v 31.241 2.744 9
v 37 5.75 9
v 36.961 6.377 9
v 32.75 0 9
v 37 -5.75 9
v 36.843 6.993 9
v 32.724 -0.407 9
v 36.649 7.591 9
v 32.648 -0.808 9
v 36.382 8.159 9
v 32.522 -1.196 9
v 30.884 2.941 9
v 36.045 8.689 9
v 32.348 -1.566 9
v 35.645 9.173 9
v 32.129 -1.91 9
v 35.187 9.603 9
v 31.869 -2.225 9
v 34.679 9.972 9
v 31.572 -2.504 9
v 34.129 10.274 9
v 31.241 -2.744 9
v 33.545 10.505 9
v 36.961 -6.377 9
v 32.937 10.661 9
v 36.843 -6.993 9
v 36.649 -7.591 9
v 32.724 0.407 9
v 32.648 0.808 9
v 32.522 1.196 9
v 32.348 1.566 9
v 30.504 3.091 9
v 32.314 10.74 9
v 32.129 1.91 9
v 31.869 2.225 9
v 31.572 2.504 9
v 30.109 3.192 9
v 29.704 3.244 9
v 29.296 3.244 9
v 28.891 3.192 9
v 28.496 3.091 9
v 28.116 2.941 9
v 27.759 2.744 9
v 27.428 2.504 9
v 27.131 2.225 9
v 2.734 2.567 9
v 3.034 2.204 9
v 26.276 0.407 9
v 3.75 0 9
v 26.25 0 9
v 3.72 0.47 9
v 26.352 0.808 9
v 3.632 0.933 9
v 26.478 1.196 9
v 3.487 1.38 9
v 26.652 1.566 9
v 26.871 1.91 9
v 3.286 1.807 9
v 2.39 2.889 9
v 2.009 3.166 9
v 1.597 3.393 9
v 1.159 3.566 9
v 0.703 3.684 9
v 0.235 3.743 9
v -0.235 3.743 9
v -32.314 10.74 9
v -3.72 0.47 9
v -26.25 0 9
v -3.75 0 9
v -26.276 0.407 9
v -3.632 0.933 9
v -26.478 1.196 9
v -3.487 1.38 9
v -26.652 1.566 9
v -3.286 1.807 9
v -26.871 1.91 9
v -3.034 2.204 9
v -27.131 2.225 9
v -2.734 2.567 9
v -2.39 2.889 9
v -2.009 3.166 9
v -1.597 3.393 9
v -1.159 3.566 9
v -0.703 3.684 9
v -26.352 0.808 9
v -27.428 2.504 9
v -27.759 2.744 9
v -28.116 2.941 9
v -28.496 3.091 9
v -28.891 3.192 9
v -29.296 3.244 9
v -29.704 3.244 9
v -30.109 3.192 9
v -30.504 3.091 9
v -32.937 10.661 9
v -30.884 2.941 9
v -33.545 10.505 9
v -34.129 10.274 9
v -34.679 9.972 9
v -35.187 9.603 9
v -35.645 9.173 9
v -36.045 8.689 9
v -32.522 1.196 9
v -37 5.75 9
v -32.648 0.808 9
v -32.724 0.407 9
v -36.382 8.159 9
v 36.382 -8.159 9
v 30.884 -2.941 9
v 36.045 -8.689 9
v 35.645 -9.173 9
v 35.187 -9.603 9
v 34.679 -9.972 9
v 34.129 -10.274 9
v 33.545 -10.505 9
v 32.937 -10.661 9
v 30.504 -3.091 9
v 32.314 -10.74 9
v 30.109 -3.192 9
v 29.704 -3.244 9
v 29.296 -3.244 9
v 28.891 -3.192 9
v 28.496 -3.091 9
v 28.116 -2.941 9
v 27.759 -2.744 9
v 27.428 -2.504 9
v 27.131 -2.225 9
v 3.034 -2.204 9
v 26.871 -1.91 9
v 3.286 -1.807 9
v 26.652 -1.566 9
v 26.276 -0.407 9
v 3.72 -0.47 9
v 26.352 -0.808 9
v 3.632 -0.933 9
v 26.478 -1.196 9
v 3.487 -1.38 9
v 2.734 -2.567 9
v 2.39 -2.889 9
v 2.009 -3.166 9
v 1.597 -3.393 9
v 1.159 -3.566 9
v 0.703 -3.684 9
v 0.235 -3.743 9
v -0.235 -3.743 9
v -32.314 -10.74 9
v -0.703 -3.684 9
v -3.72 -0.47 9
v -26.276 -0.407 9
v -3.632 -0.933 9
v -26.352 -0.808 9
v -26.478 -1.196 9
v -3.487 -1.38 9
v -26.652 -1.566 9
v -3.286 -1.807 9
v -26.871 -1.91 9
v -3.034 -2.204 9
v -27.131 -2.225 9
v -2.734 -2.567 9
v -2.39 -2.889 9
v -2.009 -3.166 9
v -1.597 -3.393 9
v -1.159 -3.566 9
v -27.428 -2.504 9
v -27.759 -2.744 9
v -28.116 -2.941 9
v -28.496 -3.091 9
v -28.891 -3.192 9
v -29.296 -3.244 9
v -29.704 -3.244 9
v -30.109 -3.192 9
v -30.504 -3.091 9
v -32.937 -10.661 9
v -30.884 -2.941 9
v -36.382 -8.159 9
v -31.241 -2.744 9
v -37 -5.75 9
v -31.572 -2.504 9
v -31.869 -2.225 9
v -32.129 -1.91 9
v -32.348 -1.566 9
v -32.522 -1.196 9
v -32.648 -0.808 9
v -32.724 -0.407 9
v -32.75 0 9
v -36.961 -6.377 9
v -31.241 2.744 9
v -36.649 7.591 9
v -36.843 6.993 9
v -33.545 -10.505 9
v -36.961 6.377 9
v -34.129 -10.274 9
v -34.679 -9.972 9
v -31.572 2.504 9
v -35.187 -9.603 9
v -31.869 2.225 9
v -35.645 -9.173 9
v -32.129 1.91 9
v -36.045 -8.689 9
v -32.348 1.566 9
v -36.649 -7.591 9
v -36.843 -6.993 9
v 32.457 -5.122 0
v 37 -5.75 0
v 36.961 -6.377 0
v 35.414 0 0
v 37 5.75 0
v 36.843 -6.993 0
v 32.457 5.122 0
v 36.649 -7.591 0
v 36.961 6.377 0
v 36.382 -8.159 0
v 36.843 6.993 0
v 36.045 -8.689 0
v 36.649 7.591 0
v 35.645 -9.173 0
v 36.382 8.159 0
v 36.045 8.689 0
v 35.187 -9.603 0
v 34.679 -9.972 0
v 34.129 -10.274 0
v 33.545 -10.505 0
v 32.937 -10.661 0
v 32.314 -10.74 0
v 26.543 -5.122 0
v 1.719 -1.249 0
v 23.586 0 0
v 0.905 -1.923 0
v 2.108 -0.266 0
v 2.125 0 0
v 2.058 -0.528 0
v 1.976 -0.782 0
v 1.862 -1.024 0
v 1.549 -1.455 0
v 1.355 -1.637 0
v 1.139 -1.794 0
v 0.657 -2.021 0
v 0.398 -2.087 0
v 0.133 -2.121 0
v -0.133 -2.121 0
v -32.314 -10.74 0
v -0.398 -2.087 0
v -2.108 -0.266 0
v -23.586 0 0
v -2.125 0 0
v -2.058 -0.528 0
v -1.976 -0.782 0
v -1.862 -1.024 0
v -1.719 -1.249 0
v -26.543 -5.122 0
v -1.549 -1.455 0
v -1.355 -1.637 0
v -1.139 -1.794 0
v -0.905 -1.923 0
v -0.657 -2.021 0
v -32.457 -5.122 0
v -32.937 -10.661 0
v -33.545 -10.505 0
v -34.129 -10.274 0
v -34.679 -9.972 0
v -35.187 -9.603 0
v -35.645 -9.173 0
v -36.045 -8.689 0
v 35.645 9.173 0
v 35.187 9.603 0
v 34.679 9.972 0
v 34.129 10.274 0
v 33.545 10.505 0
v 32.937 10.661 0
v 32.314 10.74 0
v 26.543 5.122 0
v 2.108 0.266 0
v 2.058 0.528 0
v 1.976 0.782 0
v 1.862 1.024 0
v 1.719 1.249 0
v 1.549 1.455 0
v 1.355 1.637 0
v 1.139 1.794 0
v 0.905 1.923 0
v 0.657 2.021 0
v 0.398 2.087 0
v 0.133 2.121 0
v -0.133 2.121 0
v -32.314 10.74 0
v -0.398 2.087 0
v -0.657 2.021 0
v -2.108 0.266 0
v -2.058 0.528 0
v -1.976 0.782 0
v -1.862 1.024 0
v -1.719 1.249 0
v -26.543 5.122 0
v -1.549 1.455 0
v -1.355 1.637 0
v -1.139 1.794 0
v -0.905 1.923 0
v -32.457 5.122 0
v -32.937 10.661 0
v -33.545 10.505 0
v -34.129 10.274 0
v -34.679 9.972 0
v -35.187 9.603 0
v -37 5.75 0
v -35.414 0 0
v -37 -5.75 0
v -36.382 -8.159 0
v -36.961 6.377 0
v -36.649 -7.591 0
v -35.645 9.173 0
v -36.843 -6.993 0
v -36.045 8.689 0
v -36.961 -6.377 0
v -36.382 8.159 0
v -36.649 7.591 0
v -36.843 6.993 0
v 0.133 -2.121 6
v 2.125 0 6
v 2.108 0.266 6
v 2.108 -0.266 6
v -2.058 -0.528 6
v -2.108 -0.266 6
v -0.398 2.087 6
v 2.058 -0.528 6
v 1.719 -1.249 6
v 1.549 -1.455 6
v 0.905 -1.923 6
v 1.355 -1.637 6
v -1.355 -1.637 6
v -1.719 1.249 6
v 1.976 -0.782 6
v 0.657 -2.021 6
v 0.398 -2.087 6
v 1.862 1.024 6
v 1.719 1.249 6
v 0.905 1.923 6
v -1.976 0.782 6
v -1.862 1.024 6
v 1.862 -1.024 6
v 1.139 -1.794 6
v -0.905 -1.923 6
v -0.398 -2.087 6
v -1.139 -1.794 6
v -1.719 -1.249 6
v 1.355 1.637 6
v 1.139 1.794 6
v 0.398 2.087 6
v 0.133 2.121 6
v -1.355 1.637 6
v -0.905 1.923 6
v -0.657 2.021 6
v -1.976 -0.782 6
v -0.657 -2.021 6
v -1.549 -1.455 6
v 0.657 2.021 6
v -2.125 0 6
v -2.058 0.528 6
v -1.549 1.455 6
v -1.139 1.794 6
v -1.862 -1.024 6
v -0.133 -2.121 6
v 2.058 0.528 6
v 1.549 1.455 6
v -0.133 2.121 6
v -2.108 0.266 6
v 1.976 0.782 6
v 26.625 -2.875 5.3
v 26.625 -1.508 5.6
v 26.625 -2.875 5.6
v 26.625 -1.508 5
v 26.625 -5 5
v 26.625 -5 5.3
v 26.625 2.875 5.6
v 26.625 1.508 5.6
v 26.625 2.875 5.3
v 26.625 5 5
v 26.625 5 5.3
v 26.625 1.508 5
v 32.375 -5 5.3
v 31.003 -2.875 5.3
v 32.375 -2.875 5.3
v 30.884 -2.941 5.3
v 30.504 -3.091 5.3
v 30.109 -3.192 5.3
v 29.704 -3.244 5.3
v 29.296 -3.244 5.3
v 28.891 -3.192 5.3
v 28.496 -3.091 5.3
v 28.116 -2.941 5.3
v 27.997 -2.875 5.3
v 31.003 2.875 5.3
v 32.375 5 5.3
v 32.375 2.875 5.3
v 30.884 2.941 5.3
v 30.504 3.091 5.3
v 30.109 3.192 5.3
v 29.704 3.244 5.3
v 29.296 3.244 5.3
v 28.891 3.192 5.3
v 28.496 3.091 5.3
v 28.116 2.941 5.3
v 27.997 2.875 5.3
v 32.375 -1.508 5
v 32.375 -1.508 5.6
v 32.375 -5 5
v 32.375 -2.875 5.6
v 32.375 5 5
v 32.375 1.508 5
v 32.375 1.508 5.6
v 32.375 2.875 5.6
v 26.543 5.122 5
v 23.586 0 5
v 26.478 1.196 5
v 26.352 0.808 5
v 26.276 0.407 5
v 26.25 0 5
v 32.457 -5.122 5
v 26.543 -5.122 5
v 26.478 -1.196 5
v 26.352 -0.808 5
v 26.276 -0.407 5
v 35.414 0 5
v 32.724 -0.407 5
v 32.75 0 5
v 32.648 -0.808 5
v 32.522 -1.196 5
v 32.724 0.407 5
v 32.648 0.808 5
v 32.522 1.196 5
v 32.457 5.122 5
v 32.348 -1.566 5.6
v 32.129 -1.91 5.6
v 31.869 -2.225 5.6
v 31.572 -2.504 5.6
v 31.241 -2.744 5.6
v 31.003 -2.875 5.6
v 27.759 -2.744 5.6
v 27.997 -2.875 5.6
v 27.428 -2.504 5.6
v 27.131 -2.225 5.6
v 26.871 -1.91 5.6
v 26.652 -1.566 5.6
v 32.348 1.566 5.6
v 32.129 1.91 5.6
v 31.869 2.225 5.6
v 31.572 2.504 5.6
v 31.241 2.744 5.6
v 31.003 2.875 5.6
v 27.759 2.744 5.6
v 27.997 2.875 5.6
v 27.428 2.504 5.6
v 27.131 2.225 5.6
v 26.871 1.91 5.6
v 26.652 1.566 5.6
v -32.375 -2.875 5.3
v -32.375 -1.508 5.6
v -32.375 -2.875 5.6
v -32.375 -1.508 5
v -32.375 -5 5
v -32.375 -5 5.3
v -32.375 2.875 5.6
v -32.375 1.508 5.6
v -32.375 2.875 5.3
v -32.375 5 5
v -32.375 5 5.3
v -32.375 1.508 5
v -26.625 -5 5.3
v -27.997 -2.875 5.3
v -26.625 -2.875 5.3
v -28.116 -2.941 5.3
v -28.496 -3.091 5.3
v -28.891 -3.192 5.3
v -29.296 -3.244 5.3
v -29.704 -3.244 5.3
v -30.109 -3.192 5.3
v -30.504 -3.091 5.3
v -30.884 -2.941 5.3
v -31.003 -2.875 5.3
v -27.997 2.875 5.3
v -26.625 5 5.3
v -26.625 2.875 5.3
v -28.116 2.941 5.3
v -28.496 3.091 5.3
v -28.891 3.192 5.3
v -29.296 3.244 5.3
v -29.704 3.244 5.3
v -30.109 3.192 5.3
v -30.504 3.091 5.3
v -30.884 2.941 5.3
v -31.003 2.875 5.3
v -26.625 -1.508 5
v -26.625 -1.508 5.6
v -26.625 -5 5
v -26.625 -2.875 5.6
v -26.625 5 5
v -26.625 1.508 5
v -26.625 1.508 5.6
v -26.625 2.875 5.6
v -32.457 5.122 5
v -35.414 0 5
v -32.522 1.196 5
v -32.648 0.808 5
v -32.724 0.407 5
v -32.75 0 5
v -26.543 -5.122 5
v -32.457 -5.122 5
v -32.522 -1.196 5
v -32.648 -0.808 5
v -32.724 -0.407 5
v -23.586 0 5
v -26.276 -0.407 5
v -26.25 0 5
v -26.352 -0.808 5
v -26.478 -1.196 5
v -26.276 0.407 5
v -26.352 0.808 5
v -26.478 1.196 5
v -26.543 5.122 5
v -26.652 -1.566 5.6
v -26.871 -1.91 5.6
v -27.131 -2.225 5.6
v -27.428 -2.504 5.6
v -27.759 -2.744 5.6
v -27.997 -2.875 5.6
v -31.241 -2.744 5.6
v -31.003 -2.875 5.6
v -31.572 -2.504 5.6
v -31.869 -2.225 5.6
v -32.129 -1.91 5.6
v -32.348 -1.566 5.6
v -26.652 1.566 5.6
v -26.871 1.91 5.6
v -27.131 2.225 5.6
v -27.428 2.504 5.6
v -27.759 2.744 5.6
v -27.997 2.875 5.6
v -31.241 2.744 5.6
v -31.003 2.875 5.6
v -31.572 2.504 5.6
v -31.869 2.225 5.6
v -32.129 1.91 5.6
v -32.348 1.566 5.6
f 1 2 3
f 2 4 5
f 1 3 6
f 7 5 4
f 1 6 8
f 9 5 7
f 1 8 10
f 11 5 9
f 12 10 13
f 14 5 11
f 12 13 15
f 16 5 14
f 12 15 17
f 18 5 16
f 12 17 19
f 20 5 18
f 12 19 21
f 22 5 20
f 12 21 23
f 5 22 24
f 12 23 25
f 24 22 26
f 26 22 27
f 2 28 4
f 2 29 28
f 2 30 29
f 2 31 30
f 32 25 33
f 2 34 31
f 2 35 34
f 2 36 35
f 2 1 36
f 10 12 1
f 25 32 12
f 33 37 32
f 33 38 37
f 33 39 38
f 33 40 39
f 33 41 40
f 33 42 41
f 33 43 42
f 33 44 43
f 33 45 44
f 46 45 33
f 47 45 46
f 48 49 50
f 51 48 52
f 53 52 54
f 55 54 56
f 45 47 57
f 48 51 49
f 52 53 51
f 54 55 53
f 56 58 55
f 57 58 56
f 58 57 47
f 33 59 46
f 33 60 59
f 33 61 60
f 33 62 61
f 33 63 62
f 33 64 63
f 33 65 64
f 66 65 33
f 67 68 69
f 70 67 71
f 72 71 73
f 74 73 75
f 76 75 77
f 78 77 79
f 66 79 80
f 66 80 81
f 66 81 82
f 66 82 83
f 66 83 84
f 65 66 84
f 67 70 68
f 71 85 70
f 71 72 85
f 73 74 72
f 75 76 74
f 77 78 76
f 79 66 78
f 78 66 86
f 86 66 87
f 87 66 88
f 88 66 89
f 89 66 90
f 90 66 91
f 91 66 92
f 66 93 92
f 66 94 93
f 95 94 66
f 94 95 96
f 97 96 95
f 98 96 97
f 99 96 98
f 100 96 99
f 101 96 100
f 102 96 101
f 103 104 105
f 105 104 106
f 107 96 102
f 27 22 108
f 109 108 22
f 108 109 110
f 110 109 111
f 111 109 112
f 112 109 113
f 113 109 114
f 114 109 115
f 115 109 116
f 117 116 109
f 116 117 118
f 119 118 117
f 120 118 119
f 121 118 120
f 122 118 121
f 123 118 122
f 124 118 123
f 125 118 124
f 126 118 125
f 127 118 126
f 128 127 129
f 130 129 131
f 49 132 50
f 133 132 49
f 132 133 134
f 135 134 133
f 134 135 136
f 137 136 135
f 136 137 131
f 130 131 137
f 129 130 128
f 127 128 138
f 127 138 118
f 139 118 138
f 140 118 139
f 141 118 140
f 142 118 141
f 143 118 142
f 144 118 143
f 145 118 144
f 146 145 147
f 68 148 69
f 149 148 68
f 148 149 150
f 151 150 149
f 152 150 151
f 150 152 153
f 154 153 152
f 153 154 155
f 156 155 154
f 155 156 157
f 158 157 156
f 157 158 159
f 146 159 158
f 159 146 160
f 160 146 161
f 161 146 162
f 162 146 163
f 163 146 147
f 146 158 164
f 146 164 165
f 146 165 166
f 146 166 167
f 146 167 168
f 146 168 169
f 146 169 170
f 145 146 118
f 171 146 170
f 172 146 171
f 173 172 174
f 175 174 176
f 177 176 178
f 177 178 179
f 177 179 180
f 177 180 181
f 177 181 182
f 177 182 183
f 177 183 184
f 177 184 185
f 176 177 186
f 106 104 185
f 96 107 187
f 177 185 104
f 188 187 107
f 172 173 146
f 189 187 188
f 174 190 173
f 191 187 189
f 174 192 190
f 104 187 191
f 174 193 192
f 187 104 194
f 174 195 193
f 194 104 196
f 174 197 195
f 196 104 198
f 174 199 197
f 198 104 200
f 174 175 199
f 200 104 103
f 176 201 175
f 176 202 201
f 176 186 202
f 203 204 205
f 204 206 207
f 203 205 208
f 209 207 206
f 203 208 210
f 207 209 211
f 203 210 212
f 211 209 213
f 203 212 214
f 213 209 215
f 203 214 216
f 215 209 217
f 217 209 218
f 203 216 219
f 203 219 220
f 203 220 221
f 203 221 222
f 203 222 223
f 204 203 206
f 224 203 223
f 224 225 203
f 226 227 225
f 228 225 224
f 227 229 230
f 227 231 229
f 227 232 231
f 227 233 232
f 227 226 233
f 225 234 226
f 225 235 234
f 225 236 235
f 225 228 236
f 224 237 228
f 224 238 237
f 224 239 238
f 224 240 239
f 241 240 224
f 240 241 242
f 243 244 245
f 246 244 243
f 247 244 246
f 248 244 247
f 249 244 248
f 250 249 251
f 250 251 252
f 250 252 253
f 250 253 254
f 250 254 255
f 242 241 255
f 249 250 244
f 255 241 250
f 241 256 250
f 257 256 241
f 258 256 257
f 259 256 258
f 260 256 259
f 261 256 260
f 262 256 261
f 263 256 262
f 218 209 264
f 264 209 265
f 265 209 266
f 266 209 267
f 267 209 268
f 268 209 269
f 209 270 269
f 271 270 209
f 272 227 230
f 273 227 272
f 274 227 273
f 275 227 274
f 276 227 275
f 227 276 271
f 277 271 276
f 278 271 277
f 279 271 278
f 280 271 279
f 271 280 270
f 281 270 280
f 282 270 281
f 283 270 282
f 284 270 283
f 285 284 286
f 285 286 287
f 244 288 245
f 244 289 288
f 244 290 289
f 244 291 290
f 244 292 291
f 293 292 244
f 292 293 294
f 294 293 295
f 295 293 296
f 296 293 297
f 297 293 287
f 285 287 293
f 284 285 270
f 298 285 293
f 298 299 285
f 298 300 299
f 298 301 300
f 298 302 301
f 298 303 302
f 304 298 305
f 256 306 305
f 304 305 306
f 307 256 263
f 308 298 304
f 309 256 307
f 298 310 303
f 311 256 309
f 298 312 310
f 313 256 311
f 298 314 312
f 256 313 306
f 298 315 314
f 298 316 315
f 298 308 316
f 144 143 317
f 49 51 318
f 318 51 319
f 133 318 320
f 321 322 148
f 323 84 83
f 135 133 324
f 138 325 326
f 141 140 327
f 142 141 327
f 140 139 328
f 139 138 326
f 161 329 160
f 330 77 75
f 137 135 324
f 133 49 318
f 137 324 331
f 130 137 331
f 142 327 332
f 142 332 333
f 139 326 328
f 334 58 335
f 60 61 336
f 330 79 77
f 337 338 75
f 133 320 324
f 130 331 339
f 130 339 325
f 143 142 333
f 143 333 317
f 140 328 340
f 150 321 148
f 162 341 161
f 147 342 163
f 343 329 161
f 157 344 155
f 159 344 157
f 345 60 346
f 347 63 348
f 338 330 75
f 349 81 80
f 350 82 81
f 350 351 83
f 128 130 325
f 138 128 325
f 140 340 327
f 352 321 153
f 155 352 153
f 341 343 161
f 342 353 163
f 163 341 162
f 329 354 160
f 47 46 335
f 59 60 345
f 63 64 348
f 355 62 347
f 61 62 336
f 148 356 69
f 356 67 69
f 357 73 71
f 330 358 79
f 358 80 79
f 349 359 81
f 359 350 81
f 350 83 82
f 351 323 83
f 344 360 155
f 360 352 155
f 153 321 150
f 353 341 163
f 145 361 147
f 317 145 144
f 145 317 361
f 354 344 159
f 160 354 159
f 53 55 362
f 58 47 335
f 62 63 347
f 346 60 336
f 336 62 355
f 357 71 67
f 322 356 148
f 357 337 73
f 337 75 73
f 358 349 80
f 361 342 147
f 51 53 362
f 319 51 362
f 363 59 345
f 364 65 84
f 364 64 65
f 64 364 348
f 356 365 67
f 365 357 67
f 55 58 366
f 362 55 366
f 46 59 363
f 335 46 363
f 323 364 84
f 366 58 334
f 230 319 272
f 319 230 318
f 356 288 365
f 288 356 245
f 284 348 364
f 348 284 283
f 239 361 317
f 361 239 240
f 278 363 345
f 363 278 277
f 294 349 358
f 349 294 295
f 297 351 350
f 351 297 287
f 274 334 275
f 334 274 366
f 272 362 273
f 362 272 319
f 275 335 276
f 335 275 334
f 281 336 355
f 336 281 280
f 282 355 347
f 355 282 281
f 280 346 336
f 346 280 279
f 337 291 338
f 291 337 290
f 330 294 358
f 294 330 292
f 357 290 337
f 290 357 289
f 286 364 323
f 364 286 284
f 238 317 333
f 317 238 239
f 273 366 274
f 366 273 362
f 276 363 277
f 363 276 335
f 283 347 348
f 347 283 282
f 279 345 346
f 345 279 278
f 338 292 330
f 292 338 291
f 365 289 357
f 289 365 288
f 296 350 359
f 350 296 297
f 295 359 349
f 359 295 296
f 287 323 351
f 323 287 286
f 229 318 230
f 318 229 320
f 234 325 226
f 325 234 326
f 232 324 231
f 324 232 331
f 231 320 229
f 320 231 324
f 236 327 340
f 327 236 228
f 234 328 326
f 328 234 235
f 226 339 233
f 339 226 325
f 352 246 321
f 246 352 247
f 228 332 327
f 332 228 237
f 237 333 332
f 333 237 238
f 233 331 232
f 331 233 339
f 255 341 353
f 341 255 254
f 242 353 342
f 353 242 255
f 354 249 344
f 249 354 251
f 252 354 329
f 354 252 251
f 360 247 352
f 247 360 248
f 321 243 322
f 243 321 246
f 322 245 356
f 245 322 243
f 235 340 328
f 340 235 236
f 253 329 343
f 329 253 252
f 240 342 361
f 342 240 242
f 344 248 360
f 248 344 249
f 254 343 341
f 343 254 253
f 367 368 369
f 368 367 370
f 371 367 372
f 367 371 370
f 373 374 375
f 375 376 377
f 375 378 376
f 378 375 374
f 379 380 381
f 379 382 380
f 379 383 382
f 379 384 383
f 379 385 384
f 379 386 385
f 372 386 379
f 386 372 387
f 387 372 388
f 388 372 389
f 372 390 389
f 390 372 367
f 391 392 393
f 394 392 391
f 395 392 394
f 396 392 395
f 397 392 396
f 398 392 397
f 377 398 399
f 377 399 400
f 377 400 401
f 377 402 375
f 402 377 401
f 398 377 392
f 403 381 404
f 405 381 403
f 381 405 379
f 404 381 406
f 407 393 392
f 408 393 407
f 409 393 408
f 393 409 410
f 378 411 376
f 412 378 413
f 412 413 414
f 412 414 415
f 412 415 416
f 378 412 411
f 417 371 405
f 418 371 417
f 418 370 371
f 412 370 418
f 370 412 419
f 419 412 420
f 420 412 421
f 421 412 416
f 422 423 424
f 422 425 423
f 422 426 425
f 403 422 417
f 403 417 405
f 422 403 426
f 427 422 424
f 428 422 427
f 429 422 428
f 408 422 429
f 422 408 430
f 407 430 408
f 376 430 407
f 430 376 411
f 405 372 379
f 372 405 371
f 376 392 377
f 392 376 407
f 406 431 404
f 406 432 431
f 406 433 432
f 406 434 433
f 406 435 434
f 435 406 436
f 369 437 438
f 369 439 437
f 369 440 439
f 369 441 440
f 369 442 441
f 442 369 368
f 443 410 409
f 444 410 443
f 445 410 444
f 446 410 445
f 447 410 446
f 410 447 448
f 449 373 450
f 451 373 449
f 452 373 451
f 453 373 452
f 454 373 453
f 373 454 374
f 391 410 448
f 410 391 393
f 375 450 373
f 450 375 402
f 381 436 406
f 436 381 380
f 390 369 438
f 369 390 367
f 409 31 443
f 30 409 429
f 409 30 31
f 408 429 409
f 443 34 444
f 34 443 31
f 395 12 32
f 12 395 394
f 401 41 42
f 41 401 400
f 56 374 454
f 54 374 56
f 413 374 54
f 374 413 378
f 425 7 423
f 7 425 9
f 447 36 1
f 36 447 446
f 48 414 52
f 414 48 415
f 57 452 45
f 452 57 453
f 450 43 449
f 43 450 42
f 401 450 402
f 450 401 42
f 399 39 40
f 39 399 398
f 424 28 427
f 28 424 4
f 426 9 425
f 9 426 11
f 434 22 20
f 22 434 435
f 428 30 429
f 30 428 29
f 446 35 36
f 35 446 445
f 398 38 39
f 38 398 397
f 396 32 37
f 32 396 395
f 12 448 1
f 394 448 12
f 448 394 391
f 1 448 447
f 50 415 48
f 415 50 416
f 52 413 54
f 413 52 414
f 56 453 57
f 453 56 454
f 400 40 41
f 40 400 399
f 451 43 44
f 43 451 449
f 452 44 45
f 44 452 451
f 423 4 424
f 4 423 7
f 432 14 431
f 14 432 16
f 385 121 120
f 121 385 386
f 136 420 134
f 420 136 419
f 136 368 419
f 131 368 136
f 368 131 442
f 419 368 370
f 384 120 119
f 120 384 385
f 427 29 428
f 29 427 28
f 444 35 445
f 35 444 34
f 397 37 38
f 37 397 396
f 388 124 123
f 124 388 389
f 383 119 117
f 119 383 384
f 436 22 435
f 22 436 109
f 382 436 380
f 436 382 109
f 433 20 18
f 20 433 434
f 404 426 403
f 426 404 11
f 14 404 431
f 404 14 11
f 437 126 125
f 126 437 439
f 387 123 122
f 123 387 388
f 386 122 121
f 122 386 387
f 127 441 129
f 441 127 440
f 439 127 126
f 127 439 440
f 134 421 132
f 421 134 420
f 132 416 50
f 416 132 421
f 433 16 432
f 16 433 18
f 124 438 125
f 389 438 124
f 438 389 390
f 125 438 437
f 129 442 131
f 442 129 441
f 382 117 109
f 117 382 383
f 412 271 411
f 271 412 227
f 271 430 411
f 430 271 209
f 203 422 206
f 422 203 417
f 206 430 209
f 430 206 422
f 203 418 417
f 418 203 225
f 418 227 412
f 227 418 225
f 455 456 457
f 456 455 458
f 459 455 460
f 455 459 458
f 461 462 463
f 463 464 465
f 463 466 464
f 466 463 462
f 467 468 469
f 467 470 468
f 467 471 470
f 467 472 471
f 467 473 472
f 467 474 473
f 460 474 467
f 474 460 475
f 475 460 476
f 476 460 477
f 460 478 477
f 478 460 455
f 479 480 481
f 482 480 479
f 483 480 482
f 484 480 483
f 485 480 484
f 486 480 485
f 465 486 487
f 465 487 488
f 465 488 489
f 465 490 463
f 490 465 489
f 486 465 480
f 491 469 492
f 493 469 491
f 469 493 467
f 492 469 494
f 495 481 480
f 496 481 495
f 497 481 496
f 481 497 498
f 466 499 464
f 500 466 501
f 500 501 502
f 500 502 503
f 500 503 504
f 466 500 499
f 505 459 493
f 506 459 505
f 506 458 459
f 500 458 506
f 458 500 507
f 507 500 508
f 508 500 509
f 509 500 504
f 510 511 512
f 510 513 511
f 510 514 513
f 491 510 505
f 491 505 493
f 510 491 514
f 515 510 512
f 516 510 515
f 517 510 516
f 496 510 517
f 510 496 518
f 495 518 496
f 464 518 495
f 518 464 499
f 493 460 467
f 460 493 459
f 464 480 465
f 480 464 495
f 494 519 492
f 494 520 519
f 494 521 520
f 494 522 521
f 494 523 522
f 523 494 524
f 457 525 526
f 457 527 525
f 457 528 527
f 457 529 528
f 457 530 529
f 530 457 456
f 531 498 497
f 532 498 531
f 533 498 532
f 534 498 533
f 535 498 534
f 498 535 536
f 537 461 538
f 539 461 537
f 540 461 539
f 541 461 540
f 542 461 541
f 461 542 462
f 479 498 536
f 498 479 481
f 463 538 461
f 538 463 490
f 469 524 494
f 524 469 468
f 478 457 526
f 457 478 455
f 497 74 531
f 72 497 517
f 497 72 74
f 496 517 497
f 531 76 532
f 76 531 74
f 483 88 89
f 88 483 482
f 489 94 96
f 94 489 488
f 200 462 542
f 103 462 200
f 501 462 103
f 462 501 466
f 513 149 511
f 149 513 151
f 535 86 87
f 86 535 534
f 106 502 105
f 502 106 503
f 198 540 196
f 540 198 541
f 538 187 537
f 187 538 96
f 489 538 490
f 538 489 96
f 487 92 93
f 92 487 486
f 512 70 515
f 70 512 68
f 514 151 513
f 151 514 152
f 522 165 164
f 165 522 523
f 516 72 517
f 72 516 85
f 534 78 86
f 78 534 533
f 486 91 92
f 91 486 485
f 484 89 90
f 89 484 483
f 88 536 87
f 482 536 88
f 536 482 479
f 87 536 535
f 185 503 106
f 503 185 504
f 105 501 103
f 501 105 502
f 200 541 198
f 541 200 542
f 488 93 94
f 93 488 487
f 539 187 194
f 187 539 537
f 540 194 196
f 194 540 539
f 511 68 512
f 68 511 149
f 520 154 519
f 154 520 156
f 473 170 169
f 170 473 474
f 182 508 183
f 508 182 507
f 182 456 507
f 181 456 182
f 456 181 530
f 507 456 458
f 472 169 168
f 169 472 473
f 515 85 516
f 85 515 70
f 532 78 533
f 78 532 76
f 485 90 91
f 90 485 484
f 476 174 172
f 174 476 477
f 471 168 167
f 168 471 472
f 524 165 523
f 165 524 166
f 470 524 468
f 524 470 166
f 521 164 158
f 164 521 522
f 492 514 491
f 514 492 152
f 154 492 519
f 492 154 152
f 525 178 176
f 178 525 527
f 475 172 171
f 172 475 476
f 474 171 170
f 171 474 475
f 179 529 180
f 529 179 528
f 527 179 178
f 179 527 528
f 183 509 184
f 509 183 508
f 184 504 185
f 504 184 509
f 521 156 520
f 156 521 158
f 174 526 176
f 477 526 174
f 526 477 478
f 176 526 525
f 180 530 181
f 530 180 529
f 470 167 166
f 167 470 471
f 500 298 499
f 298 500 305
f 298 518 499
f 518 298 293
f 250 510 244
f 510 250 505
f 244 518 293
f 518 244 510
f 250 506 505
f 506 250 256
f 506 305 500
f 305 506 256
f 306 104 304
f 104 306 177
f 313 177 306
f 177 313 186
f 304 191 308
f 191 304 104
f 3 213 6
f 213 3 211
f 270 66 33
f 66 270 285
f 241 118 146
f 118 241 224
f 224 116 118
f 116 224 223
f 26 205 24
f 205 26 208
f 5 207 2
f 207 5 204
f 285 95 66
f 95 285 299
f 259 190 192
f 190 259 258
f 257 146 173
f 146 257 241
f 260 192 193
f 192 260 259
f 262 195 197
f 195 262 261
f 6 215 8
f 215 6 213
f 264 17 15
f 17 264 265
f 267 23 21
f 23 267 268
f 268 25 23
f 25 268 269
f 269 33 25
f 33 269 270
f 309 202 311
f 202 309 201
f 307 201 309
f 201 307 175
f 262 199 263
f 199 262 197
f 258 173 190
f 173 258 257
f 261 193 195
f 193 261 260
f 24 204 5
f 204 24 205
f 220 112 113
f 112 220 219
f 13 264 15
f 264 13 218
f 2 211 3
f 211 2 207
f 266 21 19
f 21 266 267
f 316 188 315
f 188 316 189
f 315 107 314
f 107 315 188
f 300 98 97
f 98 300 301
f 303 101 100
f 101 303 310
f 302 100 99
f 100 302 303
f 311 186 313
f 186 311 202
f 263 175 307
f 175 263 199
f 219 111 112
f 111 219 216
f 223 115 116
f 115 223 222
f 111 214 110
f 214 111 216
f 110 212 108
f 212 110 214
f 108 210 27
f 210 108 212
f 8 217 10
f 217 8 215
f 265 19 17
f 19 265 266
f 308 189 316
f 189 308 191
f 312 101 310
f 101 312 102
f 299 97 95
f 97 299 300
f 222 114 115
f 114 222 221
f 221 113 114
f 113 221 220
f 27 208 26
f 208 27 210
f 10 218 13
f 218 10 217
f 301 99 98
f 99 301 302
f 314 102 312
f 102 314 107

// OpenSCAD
$fn = 50;


difference() {
	union() {
		hull() {
			translate(v = [-32.0000000000, 5.7500000000, 0]) {
				cylinder(h = 9, r = 5);
			}
			translate(v = [32.0000000000, 5.7500000000, 0]) {
				cylinder(h = 9, r = 5);
			}
			translate(v = [-32.0000000000, -5.7500000000, 0]) {
				cylinder(h = 9, r = 5);
			}
			translate(v = [32.0000000000, -5.7500000000, 0]) {
				cylinder(h = 9, r = 5);
			}
		}
	}
	union() {
		translate(v = [0, 0, 9]) {
			rotate(a = [0, 0, 0]) {
				difference() {
					union() {
						#translate(v = [0, 0, -9.0000000000]) {
							cylinder(h = 9, r = 2.0000000000);
						}
						#translate(v = [0, 0, -3]) {
							cylinder(h = 3, r1 = 2.1250000000, r2 = 3.7500000000);
						}
						#translate(v = [0, 0, -9.0000000000]) {
							cylinder(h = 9, r = 2.1250000000);
						}
						#translate(v = [0, 0, -9.0000000000]) {
							cylinder(h = 9, r = 2.0000000000);
						}
					}
					union();
				}
			}
		}
		translate(v = [29.5000000000, 0, 0]) {
			rotate(a = [0, 0, 0]) {
				difference() {
					union() {
						#translate(v = [-2.8750000000, -5.0000000000, -0.3000000000]) {
							cube(size = [5.7500000000, 10, 0.3000000000]);
						}
						#translate(v = [-2.8750000000, -2.8750000000, -0.6000000000]) {
							cube(size = [5.7500000000, 5.7500000000, 0.3000000000]);
						}
						#translate(v = [-2.8750000000, -5.0000000000, 5]) {
							cube(size = [5.7500000000, 10, 0.3000000000]);
						}
						#translate(v = [-2.8750000000, -2.8750000000, 5.3000000000]) {
							cube(size = [5.7500000000, 5.7500000000, 0.3000000000]);
						}
						#translate(v = [0, 0, -100.0000000000]) {
							cylinder(h = 200, r = 3.2500000000);
						}
						#linear_extrude(height = 5) {
							polygon(points = [[5.9142500000, 0.0000000000], [2.9571250000, 5.1218907443], [-2.9571250000, 5.1218907443], [-5.9142500000, 0.0000000000], [-2.9571250000, -5.1218907443], [2.9571250000, -5.1218907443]]);
						}
						#translate(v = [-2.8750000000, -5.0000000000, -0.3000000000]) {
							cube(size = [5.7500000000, 10, 0.3000000000]);
						}
						#translate(v = [-2.8750000000, -2.8750000000, -0.6000000000]) {
							cube(size = [5.7500000000, 5.7500000000, 0.3000000000]);
						}
						#translate(v = [-2.8750000000, -5.0000000000, 5]) {
							cube(size = [5.7500000000, 10, 0.3000000000]);
						}
						#translate(v = [-2.8750000000, -2.8750000000, 5.3000000000]) {
							cube(size = [5.7500000000, 5.7500000000, 0.3000000000]);
						}
						#translate(v = [0, 0, -100.0000000000]) {
							cylinder(h = 200, r = 3.2500000000);
						}
						#translate(v = [-2.8750000000, -5.0000000000, -0.3000000000]) {
							cube(size = [5.7500000000, 10, 0.3000000000]);
						}
						#translate(v = [-2.8750000000, -2.8750000000, -0.6000000000]) {
							cube(size = [5.7500000000, 5.7500000000, 0.3000000000]);
						}
						#translate(v = [-2.8750000000, -5.0000000000, 5]) {
							cube(size = [5.7500000000, 10, 0.3000000000]);
						}
						#translate(v = [-2.8750000000, -2.8750000000, 5.3000000000]) {
							cube(size = [5.7500000000, 5.7500000000, 0.3000000000]);
						}
						#translate(v = [0, 0, -100.0000000000]) {
							cylinder(h = 200, r = 3.2500000000);
						}
					}
					union();
				}
			}
		}
		translate(v = [-29.5000000000, 0, 0]) {
			rotate(a = [0, 0, 0]) {
				difference() {
					union() {
						#translate(v = [-2.8750000000, -5.0000000000, -0.3000000000]) {
							cube(size = [5.7500000000, 10, 0.3000000000]);
						}
						#translate(v = [-2.8750000000, -2.8750000000, -0.6000000000]) {
							cube(size = [5.7500000000, 5.7500000000, 0.3000000000]);
						}
						#translate(v = [-2.8750000000, -5.0000000000, 5]) {
							cube(size = [5.7500000000, 10, 0.3000000000]);
						}
						#translate(v = [-2.8750000000, -2.8750000000, 5.3000000000]) {
							cube(size = [5.7500000000, 5.7500000000, 0.3000000000]);
						}
						#translate(v = [0, 0, -100.0000000000]) {
							cylinder(h = 200, r = 3.2500000000);
						}
						#linear_extrude(height = 5) {
							polygon(points = [[5.9142500000, 0.0000000000], [2.9571250000, 5.1218907443], [-2.9571250000, 5.1218907443], [-5.9142500000, 0.0000000000], [-2.9571250000, -5.1218907443], [2.9571250000, -5.1218907443]]);
						}
						#translate(v = [-2.8750000000, -5.0000000000, -0.3000000000]) {
							cube(size = [5.7500000000, 10, 0.3000000000]);
						}
						#translate(v = [-2.8750000000, -2.8750000000, -0.6000000000]) {
							cube(size = [5.7500000000, 5.7500000000, 0.3000000000]);
						}
						#translate(v = [-2.8750000000, -5.0000000000, 5]) {
							cube(size = [5.7500000000, 10, 0.3000000000]);
						}
						#translate(v = [-2.8750000000, -2.8750000000, 5.3000000000]) {
							cube(size = [5.7500000000, 5.7500000000, 0.3000000000]);
						}
						#translate(v = [0, 0, -100.0000000000]) {
							cylinder(h = 200, r = 3.2500000000);
						}
						#translate(v = [-2.8750000000, -5.0000000000, -0.3000000000]) {
							cube(size = [5.7500000000, 10, 0.3000000000]);
						}
						#translate(v = [-2.8750000000, -2.8750000000, -0.6000000000]) {
							cube(size = [5.7500000000, 5.7500000000, 0.3000000000]);
						}
						#translate(v = [-2.8750000000, -5.0000000000, 5]) {
							cube(size = [5.7500000000, 10, 0.3000000000]);
						}
						#translate(v = [-2.8750000000, -2.8750000000, 5.3000000000]) {
							cube(size = [5.7500000000, 5.7500000000, 0.3000000000]);
						}
						#translate(v = [0, 0, -100.0000000000]) {
							cylinder(h = 200, r = 3.2500000000);
						}
					}
					union();
				}
			}
		}
	}
}
